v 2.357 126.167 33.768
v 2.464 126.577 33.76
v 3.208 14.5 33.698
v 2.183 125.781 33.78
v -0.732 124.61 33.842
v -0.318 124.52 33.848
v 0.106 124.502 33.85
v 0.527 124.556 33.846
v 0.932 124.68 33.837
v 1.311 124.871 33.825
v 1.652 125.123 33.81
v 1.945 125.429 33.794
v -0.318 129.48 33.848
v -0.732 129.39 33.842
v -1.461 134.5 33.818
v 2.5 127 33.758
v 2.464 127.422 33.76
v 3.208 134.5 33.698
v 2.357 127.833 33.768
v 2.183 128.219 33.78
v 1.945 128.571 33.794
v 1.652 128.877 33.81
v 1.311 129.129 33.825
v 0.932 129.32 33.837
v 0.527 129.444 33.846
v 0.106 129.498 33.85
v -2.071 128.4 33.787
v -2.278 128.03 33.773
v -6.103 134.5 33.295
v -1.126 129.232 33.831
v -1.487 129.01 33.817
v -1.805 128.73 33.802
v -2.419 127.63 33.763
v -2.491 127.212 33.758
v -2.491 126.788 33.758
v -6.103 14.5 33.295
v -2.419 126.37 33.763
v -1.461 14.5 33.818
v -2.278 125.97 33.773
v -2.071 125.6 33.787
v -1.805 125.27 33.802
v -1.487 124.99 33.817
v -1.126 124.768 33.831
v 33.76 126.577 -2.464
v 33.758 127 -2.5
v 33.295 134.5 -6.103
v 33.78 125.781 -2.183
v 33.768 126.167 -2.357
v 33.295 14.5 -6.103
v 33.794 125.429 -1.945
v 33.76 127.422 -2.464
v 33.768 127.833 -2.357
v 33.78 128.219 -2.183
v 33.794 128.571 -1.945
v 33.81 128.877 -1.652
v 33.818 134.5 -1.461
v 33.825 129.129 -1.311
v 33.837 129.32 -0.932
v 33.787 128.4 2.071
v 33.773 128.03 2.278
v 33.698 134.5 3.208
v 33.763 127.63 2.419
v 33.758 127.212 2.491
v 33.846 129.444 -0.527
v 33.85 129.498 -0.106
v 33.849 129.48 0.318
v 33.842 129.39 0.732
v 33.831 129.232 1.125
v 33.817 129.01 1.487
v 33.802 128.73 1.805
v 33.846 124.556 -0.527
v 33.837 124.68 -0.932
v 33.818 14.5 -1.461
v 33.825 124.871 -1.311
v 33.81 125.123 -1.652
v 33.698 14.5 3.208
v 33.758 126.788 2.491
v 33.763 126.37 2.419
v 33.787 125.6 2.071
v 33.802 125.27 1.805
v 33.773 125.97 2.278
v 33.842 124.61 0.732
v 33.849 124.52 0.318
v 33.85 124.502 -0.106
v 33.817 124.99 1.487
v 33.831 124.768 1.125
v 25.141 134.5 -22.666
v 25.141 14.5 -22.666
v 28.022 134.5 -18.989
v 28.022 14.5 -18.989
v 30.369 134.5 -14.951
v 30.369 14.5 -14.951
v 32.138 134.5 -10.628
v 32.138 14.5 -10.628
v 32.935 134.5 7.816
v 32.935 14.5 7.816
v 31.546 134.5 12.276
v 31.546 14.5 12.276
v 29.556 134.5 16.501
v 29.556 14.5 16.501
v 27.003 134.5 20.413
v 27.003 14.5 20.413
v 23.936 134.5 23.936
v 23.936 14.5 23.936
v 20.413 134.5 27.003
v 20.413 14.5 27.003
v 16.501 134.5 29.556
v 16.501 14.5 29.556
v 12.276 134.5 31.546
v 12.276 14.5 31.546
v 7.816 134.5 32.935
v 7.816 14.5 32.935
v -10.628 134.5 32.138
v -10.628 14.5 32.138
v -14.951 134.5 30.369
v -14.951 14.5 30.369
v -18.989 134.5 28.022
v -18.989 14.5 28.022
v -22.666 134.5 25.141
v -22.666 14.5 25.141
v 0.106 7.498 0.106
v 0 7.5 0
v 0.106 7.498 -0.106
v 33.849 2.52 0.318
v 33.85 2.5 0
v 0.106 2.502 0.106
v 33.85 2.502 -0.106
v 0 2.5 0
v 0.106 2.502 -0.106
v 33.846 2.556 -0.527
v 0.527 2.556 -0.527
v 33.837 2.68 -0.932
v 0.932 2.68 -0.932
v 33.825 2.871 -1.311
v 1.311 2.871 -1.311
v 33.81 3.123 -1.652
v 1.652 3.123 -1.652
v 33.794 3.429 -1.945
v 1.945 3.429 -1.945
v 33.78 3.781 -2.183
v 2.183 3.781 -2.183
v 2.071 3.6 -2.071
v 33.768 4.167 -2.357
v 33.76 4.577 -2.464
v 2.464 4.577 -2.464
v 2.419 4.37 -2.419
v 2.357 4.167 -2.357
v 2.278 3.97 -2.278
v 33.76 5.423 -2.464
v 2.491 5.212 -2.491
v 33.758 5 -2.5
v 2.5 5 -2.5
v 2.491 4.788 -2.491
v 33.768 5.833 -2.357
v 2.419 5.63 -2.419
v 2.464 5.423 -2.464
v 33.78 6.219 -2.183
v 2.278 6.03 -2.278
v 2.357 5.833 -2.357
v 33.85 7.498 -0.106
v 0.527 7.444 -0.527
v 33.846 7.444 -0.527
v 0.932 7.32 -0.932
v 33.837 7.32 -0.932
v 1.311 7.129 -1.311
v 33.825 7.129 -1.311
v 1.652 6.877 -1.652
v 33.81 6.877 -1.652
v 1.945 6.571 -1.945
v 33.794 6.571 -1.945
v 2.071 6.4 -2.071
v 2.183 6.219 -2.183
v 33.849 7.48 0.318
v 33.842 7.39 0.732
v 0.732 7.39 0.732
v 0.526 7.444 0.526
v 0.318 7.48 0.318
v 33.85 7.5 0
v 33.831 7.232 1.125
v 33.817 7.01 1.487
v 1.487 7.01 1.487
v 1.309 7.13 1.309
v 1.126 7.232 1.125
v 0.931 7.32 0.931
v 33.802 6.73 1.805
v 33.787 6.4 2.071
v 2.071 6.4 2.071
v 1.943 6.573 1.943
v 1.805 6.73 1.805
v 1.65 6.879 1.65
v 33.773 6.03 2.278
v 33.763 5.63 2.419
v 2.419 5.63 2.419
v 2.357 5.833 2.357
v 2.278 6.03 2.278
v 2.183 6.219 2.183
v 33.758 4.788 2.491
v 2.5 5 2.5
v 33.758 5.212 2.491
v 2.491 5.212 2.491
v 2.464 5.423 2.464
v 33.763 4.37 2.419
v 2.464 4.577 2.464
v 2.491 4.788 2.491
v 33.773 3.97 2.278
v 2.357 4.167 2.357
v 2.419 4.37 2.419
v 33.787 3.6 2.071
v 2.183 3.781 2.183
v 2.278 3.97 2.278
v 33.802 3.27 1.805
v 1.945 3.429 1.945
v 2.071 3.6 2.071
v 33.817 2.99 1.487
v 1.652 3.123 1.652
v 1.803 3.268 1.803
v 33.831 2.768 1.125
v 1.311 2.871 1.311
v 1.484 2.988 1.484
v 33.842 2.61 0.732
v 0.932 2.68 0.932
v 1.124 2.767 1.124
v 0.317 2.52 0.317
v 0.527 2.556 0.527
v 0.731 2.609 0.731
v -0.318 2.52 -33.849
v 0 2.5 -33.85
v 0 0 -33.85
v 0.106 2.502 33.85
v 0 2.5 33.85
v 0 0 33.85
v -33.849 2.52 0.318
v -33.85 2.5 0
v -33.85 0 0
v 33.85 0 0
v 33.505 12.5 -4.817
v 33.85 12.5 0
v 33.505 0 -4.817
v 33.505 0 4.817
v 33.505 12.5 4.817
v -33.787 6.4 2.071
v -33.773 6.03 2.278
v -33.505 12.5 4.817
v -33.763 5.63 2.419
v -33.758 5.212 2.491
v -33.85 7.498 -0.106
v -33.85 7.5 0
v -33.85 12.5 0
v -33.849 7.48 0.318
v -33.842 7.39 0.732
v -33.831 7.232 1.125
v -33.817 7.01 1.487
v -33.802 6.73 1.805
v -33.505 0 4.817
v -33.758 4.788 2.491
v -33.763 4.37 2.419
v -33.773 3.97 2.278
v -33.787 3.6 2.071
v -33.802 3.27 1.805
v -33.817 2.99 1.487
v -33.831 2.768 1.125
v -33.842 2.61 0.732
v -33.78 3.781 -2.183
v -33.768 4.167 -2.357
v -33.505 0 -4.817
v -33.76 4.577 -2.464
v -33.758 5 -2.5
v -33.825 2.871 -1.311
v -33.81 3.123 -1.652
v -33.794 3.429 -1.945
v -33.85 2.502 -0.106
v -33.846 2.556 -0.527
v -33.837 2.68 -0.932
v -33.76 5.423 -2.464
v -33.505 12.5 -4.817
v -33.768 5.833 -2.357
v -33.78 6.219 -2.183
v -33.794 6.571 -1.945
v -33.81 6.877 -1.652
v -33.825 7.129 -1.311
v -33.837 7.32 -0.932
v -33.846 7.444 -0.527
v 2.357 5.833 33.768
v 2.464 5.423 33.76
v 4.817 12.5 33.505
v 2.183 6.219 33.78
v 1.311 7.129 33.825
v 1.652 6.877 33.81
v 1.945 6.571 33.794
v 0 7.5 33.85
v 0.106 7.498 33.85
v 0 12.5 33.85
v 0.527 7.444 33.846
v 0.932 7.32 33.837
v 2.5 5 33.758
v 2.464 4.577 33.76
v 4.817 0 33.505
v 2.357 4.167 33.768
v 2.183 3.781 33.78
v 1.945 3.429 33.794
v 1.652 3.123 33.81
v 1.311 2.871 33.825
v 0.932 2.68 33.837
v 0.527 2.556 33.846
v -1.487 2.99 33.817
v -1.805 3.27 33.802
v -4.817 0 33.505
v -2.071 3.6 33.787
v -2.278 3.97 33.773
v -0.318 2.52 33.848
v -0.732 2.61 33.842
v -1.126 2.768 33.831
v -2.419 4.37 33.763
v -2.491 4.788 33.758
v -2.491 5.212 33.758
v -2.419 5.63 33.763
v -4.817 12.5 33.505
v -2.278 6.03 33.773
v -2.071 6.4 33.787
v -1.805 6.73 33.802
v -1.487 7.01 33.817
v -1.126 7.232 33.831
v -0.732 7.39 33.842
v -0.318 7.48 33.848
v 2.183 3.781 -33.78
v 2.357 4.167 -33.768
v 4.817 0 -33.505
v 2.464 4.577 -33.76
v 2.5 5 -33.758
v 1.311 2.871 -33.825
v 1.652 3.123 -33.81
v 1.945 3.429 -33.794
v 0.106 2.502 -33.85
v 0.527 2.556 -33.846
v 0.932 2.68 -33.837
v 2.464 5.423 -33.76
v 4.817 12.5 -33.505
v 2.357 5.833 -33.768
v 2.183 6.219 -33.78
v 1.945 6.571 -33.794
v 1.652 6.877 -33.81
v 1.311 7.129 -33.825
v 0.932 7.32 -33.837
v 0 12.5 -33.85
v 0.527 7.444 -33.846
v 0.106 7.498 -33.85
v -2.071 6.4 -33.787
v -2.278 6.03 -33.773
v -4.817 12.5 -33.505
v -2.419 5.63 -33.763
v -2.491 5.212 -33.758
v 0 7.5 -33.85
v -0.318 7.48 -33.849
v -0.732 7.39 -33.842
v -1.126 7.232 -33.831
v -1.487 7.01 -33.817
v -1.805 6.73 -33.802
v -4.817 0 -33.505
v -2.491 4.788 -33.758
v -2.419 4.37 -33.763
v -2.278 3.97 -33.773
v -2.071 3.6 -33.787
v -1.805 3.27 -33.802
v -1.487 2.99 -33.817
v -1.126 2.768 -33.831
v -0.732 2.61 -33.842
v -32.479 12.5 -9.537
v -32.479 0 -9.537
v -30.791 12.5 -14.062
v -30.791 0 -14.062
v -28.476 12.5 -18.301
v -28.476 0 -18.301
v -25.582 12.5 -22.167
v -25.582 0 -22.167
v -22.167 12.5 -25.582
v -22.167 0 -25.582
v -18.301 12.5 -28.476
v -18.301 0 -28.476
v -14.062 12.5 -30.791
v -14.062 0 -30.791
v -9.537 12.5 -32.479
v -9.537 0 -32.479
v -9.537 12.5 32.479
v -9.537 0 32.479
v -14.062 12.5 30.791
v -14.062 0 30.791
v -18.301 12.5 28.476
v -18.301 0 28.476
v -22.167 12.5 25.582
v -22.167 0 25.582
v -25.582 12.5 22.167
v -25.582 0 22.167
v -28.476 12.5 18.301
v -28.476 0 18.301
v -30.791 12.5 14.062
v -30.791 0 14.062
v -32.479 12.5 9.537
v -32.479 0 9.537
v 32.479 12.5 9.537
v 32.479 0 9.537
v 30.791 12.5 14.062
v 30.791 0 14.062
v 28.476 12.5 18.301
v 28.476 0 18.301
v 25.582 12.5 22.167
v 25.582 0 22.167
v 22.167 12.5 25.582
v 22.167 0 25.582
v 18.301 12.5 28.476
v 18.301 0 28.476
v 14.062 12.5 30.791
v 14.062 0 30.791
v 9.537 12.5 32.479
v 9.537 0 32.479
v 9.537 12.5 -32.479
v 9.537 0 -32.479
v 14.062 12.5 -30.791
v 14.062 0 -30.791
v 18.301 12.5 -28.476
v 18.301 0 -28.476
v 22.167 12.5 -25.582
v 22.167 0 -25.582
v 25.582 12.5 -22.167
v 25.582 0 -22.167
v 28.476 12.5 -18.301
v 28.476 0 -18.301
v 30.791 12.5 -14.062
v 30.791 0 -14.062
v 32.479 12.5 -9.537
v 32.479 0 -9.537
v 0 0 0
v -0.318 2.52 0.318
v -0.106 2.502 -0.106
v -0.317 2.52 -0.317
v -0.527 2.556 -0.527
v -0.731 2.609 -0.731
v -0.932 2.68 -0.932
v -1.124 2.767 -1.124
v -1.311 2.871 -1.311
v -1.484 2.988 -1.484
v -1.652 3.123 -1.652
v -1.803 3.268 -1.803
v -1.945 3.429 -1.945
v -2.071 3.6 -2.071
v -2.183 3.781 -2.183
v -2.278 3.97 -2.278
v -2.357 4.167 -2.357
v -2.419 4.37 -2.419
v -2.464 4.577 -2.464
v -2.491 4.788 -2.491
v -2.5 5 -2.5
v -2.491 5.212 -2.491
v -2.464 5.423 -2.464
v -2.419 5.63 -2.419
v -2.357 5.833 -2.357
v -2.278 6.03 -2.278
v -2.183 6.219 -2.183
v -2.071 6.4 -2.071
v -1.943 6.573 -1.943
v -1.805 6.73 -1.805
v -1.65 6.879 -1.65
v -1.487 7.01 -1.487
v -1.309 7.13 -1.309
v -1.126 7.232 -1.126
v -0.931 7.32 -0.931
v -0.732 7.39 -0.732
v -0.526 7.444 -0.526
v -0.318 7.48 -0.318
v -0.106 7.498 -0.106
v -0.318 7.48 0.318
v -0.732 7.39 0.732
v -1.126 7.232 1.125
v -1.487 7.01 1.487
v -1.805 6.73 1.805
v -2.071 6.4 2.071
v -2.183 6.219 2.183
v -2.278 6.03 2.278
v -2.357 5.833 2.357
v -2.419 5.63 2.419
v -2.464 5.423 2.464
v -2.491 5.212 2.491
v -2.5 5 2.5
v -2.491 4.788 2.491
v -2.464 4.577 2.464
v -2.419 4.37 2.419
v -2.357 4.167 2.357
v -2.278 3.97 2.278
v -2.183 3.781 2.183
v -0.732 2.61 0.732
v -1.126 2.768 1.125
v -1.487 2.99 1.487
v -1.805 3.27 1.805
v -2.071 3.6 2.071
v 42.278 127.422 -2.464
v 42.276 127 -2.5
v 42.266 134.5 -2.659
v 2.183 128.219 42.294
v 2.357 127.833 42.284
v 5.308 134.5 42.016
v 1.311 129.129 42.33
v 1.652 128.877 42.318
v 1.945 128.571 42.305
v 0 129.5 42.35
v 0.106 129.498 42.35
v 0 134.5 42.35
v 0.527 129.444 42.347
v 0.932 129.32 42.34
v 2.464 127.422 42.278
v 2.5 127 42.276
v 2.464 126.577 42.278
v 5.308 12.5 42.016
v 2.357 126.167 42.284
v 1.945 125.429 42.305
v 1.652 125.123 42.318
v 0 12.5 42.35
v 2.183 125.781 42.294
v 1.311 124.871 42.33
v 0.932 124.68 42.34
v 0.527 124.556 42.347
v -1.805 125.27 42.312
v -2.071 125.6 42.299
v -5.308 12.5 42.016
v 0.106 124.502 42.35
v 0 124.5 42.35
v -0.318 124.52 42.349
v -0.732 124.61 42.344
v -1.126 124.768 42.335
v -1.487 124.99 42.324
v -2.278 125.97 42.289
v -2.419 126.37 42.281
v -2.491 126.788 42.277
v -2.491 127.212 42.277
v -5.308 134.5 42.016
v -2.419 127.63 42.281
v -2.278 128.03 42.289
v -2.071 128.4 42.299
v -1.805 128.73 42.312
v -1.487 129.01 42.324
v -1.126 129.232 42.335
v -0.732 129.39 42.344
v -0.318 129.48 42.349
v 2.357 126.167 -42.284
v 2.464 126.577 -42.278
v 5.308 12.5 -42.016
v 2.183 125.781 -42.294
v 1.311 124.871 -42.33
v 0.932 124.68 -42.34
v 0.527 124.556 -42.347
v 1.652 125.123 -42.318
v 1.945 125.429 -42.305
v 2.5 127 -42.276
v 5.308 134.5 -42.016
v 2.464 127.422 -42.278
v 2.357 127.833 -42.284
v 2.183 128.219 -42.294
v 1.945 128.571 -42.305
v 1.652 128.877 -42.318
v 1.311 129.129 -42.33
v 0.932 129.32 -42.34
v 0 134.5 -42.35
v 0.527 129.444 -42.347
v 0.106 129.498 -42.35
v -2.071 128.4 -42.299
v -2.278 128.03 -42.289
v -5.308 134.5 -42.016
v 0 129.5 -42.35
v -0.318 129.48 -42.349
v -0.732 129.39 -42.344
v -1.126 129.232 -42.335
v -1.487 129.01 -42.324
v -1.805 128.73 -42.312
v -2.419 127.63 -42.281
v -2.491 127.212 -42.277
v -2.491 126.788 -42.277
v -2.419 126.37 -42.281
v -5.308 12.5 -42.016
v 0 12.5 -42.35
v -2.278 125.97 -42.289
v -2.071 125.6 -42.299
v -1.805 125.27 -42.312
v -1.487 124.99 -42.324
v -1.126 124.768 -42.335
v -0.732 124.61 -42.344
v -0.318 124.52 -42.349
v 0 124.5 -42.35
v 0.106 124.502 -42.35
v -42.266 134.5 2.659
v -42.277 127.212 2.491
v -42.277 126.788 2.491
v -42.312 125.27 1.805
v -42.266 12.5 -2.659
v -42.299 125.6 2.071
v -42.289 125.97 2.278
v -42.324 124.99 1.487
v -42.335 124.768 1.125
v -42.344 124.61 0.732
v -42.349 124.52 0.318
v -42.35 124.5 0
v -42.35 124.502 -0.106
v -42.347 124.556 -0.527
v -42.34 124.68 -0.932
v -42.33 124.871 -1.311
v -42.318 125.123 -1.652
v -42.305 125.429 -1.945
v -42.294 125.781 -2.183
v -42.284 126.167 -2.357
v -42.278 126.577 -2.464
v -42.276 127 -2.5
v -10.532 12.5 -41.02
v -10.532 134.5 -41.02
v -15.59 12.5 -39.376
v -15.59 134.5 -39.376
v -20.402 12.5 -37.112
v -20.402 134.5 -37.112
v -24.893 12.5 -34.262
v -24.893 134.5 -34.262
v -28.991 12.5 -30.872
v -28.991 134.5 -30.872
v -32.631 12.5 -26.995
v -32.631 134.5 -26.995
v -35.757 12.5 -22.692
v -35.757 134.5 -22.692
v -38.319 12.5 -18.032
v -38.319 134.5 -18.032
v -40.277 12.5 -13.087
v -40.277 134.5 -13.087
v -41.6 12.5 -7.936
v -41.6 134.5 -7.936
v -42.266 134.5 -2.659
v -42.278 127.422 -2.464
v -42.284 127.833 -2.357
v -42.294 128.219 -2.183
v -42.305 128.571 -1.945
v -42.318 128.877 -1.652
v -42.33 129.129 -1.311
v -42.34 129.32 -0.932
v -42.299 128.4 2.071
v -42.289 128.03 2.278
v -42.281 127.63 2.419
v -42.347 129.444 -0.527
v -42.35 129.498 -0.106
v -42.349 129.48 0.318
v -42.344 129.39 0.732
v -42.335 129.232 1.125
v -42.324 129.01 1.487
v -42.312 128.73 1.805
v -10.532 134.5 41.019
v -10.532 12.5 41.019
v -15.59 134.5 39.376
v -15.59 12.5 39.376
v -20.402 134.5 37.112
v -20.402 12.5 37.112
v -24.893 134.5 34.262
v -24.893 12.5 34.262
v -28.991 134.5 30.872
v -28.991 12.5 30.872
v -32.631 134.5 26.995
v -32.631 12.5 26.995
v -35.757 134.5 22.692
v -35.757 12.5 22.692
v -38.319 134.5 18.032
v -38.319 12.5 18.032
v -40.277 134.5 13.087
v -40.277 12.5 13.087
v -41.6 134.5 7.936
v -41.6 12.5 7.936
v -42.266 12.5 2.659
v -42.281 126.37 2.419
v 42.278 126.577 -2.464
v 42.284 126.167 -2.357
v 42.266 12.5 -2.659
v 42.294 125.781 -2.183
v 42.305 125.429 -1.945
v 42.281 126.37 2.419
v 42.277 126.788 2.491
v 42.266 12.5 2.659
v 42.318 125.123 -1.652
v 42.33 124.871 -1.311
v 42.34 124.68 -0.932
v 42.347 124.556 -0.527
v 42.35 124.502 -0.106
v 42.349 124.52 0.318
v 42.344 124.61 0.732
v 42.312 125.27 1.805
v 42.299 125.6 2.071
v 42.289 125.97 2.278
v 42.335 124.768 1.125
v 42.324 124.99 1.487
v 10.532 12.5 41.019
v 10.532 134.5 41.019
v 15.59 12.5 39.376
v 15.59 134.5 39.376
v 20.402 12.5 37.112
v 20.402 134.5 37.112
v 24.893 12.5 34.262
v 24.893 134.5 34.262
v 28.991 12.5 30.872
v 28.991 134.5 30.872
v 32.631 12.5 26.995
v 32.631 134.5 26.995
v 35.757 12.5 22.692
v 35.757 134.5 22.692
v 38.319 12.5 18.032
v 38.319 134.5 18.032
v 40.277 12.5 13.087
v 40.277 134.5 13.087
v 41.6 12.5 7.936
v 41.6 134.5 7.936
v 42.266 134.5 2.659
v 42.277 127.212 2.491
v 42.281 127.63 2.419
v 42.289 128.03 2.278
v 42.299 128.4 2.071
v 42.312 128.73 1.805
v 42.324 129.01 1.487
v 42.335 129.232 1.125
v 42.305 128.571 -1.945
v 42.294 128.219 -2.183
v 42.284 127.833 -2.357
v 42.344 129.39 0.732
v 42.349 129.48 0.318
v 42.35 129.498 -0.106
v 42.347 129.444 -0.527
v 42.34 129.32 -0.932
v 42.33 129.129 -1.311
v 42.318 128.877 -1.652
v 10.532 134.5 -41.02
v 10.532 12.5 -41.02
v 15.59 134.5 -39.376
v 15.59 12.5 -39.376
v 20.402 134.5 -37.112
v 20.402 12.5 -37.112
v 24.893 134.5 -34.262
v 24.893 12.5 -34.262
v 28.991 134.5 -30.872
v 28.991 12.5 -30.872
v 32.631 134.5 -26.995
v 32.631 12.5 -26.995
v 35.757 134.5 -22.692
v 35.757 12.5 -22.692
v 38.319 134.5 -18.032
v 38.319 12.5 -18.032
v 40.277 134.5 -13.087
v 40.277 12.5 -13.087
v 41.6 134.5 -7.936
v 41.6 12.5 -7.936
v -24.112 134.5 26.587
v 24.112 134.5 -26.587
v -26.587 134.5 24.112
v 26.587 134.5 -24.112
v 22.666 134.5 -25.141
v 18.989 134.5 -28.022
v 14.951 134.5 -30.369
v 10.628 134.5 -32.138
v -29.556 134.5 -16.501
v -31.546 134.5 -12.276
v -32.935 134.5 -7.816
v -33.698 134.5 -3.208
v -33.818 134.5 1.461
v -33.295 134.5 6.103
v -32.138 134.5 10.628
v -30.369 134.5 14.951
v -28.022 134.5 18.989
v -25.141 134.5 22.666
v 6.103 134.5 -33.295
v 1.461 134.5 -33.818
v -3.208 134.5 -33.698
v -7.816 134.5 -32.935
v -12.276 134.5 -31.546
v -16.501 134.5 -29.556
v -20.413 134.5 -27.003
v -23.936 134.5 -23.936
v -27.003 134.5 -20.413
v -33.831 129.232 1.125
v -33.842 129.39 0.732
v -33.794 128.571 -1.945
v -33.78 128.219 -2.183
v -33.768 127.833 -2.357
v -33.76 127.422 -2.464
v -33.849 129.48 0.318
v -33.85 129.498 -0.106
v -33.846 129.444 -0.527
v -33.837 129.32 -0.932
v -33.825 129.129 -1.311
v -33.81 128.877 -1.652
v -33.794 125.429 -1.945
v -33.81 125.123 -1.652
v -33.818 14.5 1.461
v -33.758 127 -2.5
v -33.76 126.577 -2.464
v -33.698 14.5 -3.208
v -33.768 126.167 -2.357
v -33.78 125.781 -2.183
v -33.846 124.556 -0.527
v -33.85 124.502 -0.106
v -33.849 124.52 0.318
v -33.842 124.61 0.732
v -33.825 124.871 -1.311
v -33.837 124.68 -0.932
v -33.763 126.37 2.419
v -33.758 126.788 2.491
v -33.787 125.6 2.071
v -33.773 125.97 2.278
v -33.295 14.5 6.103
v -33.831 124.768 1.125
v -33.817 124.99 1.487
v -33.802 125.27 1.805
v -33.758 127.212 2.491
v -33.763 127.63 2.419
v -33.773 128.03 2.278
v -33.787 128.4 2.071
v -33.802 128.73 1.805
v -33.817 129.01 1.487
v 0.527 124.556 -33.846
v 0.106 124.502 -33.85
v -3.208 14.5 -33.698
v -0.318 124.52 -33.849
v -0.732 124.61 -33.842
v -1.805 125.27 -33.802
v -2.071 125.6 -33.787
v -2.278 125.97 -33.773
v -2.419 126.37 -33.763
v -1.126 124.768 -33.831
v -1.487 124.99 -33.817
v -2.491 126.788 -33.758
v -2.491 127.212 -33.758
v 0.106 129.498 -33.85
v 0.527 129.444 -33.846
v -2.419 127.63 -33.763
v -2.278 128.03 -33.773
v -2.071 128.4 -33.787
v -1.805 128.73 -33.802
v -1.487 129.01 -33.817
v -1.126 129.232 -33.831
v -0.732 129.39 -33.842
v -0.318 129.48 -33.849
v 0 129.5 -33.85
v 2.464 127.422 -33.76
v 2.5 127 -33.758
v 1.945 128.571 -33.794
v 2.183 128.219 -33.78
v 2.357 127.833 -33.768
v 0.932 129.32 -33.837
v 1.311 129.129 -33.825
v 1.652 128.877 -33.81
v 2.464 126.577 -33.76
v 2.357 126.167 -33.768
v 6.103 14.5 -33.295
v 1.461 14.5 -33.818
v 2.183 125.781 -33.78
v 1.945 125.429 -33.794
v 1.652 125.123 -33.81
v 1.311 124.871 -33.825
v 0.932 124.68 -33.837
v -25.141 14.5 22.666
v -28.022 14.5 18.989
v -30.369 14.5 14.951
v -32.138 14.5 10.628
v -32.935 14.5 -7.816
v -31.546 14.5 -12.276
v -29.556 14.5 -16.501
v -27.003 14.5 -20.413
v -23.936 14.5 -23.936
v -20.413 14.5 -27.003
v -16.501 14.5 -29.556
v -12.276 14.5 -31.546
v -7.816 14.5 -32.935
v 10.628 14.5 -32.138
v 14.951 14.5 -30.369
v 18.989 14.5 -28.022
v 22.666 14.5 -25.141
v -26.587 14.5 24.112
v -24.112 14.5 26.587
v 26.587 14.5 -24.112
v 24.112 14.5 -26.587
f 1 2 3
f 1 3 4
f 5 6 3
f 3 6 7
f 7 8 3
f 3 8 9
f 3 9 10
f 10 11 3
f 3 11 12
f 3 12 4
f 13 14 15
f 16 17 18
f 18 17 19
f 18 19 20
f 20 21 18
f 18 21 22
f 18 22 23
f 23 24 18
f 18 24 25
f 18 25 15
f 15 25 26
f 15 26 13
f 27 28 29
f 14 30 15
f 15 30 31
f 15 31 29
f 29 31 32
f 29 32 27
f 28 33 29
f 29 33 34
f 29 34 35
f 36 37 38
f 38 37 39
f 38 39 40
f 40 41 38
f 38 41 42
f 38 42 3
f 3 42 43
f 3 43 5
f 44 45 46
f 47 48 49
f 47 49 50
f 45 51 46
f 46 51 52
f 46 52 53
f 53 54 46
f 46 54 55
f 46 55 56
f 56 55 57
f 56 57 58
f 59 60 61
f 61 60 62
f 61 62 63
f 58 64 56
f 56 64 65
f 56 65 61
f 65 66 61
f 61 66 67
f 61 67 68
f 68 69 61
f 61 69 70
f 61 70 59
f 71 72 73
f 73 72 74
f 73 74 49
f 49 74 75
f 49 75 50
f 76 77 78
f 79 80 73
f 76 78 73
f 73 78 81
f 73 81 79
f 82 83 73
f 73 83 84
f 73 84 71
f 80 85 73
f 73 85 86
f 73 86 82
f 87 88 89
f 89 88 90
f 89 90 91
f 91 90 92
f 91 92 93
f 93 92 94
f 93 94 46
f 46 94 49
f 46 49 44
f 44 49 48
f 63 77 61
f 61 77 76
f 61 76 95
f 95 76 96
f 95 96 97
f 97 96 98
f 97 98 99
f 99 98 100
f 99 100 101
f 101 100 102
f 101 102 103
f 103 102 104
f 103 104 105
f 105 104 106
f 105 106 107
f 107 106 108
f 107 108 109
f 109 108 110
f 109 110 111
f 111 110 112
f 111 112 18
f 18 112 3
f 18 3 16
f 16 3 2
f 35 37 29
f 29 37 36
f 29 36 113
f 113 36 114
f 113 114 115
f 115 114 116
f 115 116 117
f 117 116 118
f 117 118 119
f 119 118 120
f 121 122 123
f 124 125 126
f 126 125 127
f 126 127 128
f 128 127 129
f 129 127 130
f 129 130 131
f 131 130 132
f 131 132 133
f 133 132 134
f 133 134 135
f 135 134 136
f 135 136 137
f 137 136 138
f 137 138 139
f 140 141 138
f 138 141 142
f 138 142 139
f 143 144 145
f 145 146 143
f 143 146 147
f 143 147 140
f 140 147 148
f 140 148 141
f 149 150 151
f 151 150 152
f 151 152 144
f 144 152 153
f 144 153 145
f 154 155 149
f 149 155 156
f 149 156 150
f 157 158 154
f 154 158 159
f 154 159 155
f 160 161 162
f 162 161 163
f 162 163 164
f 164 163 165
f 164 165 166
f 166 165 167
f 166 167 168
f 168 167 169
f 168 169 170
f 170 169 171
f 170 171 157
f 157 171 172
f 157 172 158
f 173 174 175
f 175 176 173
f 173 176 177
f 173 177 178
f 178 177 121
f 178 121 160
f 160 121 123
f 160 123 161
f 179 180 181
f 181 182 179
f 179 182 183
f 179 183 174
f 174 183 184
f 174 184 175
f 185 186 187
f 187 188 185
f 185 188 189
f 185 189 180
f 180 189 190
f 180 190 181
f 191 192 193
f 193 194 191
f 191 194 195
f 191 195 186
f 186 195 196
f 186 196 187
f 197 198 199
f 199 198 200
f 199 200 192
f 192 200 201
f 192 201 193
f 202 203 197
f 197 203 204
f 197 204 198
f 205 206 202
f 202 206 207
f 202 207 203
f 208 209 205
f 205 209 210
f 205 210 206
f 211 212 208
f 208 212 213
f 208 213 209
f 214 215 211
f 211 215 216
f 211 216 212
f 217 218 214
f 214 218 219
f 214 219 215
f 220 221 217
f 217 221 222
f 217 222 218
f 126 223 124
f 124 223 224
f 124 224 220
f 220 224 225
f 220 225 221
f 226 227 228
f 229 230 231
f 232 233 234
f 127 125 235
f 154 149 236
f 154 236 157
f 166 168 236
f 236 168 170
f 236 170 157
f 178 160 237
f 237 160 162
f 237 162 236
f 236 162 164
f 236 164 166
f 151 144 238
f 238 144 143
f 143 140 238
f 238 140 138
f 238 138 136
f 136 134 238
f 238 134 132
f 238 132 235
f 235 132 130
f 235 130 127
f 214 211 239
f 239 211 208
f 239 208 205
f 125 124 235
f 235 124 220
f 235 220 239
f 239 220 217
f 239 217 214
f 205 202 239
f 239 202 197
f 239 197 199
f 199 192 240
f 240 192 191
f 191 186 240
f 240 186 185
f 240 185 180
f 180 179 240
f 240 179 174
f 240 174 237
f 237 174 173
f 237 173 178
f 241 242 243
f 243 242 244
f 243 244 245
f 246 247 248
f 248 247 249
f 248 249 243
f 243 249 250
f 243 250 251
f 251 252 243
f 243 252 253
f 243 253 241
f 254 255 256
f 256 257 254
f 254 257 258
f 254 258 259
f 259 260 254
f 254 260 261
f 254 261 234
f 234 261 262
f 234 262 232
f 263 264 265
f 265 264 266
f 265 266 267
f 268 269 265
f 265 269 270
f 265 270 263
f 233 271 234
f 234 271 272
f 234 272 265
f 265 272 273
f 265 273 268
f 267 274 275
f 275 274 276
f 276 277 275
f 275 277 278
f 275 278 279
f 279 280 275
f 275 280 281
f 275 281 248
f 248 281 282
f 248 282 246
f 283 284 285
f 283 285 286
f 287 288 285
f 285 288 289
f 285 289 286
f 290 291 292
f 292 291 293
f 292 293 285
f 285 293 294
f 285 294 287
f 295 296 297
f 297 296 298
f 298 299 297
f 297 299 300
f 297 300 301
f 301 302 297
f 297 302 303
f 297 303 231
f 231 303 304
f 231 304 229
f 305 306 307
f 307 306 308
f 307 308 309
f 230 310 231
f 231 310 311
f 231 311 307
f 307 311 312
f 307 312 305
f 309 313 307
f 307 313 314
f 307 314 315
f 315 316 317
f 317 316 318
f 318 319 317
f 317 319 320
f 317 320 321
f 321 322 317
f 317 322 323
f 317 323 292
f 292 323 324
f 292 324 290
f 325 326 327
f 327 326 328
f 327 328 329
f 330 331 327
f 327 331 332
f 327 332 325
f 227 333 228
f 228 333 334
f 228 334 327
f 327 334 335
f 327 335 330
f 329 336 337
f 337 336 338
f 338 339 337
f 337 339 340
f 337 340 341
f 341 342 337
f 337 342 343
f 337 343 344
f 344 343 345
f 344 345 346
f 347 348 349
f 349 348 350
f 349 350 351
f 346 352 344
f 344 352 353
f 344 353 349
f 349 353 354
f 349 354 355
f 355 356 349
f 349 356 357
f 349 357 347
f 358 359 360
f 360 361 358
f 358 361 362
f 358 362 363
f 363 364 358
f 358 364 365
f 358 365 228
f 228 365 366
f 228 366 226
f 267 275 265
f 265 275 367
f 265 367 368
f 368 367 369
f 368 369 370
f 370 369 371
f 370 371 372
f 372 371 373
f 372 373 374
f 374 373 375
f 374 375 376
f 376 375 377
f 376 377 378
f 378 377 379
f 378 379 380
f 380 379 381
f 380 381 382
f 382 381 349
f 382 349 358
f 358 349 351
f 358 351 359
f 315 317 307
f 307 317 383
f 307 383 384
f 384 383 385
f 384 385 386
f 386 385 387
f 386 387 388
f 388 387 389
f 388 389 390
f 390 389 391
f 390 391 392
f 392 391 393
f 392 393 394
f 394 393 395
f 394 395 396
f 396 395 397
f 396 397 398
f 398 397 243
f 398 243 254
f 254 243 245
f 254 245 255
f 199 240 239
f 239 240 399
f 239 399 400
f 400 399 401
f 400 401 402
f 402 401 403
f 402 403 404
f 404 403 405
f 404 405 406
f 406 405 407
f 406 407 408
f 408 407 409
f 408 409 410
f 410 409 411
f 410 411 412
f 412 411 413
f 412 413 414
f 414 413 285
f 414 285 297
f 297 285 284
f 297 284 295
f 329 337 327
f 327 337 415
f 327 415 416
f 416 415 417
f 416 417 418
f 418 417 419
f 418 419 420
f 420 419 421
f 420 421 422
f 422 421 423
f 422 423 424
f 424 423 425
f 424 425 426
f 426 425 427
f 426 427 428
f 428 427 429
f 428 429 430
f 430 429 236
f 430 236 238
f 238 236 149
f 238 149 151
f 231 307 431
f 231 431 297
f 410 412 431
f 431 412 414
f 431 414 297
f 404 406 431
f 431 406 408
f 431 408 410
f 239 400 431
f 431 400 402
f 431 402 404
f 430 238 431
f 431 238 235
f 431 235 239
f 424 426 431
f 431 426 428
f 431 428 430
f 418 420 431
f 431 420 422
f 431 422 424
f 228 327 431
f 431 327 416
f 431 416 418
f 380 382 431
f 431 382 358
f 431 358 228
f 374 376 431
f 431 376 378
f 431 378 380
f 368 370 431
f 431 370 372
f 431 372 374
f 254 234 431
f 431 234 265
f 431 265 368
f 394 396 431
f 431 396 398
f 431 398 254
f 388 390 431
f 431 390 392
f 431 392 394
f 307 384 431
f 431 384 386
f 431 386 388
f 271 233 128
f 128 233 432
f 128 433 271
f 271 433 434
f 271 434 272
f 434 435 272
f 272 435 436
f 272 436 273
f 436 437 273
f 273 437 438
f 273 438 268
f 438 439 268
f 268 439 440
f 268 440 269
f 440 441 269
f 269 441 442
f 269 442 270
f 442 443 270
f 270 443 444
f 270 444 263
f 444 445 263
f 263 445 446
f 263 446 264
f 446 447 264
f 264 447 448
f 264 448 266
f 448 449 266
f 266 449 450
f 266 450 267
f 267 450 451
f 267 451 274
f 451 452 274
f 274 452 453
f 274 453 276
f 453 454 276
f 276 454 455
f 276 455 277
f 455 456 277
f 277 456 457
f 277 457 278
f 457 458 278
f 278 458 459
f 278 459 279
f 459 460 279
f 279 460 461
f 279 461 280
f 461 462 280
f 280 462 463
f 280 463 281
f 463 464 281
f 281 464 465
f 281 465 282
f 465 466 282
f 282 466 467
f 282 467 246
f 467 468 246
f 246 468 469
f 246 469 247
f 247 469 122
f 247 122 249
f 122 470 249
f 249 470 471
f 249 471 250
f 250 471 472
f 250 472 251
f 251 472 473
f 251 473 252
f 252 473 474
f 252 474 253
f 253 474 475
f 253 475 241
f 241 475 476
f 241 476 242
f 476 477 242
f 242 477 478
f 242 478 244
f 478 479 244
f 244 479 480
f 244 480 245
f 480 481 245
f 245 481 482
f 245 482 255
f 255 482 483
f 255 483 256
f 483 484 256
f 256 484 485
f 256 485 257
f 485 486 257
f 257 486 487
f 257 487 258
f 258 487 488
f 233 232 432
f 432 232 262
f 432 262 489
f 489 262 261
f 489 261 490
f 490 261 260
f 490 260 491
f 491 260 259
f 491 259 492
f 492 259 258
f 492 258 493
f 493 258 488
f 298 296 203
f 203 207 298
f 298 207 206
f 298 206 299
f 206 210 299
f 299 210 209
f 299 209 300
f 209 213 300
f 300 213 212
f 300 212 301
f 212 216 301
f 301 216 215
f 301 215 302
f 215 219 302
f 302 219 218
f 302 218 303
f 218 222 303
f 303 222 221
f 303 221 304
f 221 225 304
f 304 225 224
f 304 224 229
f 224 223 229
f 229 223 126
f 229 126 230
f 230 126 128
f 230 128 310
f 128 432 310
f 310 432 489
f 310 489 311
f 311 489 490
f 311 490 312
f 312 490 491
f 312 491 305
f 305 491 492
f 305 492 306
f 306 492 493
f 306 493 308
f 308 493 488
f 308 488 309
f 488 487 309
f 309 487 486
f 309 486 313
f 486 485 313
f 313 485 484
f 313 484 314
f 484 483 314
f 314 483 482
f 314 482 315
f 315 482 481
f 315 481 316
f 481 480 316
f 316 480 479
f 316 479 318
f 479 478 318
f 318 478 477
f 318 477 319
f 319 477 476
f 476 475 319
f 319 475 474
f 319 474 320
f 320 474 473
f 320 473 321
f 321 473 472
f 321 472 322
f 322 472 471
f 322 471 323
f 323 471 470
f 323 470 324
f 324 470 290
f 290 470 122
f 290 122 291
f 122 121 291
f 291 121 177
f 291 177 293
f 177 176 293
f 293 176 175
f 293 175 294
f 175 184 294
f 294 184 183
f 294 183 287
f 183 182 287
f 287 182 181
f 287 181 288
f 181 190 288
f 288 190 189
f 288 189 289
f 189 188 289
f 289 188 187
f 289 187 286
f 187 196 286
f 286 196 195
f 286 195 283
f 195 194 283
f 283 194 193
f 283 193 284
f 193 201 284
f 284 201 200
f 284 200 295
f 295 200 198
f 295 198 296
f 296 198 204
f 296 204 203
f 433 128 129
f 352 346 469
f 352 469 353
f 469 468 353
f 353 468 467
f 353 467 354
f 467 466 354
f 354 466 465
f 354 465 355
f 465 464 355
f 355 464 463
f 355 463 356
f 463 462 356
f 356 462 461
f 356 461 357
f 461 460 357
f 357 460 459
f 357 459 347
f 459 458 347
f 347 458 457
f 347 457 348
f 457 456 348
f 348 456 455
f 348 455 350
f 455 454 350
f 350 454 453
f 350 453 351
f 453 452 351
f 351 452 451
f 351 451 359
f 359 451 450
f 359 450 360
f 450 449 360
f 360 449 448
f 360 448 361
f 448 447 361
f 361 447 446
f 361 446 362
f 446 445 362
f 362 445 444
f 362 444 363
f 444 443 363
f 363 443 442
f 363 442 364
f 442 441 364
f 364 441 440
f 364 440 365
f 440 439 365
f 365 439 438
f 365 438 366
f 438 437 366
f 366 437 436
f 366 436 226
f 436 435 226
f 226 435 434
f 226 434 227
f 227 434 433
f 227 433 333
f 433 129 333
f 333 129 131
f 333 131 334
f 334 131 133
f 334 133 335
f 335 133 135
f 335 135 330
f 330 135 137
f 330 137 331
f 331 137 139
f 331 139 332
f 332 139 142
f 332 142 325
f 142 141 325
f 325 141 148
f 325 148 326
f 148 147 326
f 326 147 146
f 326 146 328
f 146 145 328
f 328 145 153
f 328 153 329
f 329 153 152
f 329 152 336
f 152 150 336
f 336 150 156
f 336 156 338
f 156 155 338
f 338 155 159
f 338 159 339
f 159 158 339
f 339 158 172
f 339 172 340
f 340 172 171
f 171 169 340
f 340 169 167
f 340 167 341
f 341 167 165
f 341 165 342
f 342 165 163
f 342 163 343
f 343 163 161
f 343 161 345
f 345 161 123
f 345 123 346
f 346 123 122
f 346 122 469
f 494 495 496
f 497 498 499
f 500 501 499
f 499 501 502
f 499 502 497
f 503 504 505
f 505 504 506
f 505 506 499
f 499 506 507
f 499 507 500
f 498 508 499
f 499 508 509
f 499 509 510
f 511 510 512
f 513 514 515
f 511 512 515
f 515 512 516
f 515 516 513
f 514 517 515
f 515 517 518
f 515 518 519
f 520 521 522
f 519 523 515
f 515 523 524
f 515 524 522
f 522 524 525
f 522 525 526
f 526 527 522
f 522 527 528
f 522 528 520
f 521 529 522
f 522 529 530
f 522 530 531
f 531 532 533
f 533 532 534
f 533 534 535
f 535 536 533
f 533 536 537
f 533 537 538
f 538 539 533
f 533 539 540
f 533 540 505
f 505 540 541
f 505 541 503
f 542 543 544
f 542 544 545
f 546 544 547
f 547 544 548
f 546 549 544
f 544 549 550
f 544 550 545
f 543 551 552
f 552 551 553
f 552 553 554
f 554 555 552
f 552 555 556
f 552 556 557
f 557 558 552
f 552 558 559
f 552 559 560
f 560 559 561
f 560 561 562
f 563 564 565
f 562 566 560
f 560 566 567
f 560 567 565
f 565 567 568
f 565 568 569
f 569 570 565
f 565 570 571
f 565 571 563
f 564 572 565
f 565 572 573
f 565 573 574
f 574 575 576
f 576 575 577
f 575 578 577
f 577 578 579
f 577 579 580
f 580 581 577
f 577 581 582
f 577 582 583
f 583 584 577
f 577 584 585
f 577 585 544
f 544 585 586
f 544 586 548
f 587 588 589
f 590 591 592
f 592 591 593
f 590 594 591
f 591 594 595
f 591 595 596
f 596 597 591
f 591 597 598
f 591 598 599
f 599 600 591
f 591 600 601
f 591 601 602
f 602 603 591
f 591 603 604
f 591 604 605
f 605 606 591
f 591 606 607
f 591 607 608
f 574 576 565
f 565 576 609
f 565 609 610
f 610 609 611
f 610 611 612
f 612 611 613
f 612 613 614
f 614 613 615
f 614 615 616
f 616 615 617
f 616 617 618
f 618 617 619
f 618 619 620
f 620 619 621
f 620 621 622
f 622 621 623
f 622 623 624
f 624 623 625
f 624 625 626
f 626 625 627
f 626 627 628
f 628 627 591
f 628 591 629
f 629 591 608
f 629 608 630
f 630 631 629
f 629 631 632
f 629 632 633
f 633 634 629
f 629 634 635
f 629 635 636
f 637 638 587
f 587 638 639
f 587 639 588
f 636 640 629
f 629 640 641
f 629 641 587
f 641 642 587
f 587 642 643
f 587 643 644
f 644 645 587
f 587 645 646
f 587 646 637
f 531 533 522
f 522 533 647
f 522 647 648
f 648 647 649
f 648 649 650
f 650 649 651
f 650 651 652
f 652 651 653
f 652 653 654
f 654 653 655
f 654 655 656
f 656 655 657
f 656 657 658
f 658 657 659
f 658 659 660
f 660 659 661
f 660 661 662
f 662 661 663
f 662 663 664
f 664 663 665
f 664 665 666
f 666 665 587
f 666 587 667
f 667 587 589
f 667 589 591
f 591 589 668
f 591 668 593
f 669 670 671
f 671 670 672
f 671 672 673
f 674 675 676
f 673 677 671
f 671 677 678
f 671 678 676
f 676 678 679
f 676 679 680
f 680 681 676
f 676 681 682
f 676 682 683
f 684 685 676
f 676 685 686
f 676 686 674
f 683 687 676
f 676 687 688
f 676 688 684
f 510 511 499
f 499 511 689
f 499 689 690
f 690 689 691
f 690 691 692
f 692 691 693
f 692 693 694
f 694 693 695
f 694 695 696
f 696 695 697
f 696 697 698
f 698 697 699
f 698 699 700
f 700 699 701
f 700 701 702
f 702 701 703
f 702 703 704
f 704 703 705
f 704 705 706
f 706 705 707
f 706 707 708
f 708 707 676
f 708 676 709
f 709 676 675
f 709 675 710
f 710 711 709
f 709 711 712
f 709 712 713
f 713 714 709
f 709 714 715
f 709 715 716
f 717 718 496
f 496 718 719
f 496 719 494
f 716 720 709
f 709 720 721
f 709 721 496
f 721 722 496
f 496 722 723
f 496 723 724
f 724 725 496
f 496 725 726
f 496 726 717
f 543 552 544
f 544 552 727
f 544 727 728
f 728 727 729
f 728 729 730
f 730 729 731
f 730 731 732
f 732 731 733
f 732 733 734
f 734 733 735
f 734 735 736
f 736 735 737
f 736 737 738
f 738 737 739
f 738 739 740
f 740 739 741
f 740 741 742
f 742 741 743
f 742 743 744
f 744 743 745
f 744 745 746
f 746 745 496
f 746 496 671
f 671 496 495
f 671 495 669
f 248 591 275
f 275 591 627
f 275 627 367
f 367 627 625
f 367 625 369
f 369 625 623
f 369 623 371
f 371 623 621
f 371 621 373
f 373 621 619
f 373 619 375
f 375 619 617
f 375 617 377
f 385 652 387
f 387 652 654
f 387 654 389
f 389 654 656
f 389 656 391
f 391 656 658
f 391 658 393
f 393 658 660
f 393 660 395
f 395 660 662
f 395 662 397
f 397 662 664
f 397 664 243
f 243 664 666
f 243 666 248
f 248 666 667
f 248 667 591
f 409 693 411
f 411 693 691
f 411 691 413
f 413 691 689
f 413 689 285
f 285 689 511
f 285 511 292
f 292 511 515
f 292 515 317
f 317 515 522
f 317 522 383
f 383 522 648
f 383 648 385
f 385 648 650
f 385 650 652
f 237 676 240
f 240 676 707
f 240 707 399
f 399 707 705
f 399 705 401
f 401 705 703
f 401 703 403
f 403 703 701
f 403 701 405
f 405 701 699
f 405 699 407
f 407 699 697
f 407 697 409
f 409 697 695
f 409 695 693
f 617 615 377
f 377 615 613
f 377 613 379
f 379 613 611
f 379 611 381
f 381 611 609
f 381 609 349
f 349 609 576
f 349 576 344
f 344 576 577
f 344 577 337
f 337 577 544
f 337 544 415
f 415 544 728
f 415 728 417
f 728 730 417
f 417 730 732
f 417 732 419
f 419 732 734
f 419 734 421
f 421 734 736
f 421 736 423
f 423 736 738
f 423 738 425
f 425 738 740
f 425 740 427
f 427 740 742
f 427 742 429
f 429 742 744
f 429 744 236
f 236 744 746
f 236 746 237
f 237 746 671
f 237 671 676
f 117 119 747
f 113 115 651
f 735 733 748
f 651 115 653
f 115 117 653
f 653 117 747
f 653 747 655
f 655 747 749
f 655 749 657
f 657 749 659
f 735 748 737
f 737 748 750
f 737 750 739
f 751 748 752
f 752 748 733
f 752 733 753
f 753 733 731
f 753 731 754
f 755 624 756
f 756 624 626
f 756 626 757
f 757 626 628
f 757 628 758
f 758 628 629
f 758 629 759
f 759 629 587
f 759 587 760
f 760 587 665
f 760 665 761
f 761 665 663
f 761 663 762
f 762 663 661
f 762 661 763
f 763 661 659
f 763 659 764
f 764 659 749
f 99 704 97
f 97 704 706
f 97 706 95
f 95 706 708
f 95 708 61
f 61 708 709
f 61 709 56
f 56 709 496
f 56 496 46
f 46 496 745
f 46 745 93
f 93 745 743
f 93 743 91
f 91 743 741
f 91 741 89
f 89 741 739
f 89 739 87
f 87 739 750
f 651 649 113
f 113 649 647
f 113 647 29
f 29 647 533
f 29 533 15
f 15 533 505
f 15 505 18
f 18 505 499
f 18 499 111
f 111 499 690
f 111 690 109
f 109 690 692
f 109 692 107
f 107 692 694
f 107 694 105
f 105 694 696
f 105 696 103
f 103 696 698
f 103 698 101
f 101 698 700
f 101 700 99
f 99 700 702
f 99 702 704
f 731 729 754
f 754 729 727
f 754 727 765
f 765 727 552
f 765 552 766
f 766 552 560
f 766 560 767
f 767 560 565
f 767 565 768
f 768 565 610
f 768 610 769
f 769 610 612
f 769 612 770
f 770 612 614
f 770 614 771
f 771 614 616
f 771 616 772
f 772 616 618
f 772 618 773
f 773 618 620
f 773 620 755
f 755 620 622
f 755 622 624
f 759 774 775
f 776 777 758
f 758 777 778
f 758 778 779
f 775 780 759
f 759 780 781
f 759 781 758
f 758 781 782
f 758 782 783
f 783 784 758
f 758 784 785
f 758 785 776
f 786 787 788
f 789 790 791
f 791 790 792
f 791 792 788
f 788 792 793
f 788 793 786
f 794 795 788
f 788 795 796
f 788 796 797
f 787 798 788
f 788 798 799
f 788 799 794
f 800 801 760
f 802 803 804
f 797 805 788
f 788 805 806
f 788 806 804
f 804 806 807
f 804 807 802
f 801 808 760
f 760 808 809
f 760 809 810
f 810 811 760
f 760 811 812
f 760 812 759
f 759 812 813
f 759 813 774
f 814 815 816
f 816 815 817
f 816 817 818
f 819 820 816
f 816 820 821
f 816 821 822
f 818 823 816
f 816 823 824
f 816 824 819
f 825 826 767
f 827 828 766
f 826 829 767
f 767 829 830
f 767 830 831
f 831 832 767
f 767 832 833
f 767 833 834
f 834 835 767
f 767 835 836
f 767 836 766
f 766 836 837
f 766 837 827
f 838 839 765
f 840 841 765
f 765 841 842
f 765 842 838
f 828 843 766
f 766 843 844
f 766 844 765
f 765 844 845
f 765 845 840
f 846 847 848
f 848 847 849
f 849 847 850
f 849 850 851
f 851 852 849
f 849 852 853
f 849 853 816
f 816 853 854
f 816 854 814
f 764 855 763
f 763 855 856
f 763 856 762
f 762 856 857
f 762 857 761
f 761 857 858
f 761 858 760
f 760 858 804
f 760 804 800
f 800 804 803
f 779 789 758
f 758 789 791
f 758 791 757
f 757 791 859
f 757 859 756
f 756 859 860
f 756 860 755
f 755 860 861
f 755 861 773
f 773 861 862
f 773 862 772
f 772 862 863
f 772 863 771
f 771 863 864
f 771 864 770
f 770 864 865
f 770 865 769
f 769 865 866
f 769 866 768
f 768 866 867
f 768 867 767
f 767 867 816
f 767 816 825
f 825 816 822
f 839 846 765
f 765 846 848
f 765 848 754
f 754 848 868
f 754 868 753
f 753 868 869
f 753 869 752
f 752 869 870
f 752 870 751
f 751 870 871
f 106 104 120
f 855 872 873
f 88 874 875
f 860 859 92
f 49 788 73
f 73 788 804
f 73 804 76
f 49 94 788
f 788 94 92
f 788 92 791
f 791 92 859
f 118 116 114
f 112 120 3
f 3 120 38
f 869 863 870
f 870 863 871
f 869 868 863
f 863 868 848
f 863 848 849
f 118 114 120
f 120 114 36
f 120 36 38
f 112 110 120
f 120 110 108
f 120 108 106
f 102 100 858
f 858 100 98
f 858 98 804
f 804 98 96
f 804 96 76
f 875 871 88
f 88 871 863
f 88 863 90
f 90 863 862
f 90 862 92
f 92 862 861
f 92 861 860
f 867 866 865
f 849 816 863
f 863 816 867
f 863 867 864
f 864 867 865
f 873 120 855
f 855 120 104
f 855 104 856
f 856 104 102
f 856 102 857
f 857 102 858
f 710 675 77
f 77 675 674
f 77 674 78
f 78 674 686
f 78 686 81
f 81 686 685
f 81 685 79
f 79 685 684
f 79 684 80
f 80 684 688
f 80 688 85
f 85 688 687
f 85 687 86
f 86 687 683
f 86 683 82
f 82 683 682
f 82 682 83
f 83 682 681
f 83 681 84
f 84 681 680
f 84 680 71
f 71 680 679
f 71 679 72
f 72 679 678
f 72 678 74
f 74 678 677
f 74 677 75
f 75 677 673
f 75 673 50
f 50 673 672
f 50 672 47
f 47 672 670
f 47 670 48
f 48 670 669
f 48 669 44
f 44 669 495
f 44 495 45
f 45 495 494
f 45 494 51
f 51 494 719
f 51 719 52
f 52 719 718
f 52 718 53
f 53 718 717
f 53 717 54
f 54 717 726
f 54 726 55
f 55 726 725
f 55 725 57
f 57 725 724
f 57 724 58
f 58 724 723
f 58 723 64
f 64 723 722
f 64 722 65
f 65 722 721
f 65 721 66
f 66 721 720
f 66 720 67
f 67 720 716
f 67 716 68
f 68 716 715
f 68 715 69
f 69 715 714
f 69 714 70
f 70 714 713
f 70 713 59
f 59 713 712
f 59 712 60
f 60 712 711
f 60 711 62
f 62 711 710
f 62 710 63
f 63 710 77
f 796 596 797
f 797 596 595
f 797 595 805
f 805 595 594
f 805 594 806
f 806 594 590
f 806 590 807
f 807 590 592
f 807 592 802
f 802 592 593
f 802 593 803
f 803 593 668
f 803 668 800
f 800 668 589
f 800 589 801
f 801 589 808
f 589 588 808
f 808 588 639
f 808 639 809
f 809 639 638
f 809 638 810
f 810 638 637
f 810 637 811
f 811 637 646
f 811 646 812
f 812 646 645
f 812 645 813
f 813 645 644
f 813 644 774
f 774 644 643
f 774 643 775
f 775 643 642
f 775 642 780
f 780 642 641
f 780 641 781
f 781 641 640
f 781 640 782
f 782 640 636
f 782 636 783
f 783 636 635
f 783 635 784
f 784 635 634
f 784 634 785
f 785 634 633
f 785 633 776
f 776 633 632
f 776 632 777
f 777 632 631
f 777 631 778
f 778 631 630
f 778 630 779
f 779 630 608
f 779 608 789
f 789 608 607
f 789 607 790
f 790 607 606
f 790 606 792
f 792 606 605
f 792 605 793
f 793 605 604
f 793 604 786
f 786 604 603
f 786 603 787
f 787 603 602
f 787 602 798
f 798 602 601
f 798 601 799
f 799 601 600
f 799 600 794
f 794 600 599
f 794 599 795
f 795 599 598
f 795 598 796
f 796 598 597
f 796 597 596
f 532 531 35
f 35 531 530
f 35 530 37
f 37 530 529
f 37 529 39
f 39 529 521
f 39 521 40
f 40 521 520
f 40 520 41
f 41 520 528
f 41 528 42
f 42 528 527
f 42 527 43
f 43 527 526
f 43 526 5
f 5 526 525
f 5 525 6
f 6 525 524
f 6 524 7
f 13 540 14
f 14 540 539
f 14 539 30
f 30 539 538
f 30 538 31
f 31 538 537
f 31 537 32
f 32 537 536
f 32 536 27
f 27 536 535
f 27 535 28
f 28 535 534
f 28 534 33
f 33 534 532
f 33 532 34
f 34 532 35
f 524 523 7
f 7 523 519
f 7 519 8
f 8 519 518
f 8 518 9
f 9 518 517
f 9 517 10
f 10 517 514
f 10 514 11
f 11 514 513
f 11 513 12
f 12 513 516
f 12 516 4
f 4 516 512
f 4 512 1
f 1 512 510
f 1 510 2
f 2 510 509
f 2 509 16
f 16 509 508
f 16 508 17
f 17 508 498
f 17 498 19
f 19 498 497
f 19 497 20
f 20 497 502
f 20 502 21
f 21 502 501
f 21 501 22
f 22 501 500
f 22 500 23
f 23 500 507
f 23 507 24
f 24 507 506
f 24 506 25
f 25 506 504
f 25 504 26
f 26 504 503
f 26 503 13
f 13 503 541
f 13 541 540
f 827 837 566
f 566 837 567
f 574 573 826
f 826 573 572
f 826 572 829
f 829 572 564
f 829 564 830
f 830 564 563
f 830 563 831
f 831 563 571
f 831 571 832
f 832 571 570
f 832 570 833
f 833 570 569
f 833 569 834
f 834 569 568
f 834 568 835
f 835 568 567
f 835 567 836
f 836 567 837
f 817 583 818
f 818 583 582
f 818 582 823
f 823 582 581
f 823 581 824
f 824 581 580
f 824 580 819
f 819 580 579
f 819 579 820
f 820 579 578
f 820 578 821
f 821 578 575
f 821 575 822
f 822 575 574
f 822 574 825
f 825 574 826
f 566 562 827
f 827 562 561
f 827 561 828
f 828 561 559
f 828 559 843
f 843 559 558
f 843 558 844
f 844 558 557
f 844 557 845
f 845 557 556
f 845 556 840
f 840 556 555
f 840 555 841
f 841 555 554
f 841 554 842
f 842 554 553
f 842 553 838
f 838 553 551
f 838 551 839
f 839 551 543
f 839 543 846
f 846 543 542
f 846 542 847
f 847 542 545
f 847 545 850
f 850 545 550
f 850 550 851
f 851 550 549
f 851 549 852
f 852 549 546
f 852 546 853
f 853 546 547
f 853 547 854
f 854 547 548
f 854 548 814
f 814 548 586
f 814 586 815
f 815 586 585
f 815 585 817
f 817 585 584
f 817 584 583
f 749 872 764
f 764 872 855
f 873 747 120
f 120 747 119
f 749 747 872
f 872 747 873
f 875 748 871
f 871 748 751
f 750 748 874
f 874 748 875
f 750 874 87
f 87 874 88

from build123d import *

# Parameters (mm, degrees)
SKETCH1_R               = 33.85
BOSS_EXTRUDE1_DEPTH     = 12.5
SKETCH2_R               = 2.5
CUT_EXTRUDE1_DEPTH      = 34.85
CUT_EXTRUDE1_DEPTH_BACK = 34.85
SKETCH3_R               = 2.5
CUT_EXTRUDE2_DEPTH      = 34.8500001
CUT_EXTRUDE2_DEPTH_BACK = 34.8500001
SKETCH4_R               = 42.35
BOSS_EXTRUDE2_DEPTH     = 2
SKETCH5_R               = 42.35
SKETCH5_R_2             = 33.85
BOSS_EXTRUDE3_DEPTH     = 120
SKETCH6_R               = 2.5
CUT_EXTRUDE3_DEPTH      = 43.35
CUT_EXTRUDE3_DEPTH_BACK = 43.35
SKETCH7_R               = 2.5
CUT_EXTRUDE4_DEPTH      = 43.3500001
CUT_EXTRUDE4_DEPTH_BACK = 43.3500001
CUT_EXTRUDE5_DEPTH      = 120


with BuildPart() as part:
    # Sketch1 → Boss-Extrude1 (new body)
    with BuildSketch(Plane(origin=(0, 0, 0), x_dir=(1, 0, 0), z_dir=(0, 1, 0))):
        Circle(SKETCH1_R)
    extrude(amount=BOSS_EXTRUDE1_DEPTH)

    # Sketch2 → Cut-Extrude1 (cut, two sides)
    with BuildSketch(Plane(origin=(0, 0, 0), x_dir=(0, 0, -1), z_dir=(1, 0, 0))) as cut_extrude1_sk:
        with Locations((0, 5)):
            Circle(SKETCH2_R)
    extrude(amount=CUT_EXTRUDE1_DEPTH, mode=Mode.SUBTRACT)
    extrude(cut_extrude1_sk.sketch, amount=-CUT_EXTRUDE1_DEPTH_BACK, mode=Mode.SUBTRACT)

    # Sketch3 → Cut-Extrude2 (cut, two sides)
    with BuildSketch(Plane.XY) as cut_extrude2_sk:
        with Locations((0, 5)):
            Circle(SKETCH3_R)
    extrude(amount=CUT_EXTRUDE2_DEPTH, mode=Mode.SUBTRACT)
    extrude(cut_extrude2_sk.sketch, amount=-CUT_EXTRUDE2_DEPTH_BACK, mode=Mode.SUBTRACT)

    # Sketch4 → Boss-Extrude2 (add)
    with BuildSketch(Plane(origin=(0, 12.5, 0), x_dir=(1, 0, 0), z_dir=(0, 1, 0))):
        Circle(SKETCH4_R)
    extrude(amount=BOSS_EXTRUDE2_DEPTH)

    # Sketch5 → Boss-Extrude3 (add)
    with BuildSketch(Plane(origin=(0, 14.5, 0), x_dir=(1, 0, 0), z_dir=(0, 1, 0))):
        Circle(SKETCH5_R)
        Circle(SKETCH5_R_2, mode=Mode.SUBTRACT)
    extrude(amount=BOSS_EXTRUDE3_DEPTH)

    # Sketch6 → Cut-Extrude3 (cut, two sides)
    with BuildSketch(Plane(origin=(0, 0, 0), x_dir=(0, 0, -1), z_dir=(1, 0, 0))) as cut_extrude3_sk:
        with Locations((0, 127)):
            Circle(SKETCH6_R)
    extrude(amount=CUT_EXTRUDE3_DEPTH, mode=Mode.SUBTRACT)
    extrude(cut_extrude3_sk.sketch, amount=-CUT_EXTRUDE3_DEPTH_BACK, mode=Mode.SUBTRACT)

    # Sketch7 → Cut-Extrude4 (cut, two sides)
    with BuildSketch(Plane.XY) as cut_extrude4_sk:
        with Locations((0, 127)):
            Circle(SKETCH7_R)
    extrude(amount=CUT_EXTRUDE4_DEPTH, mode=Mode.SUBTRACT)
    extrude(cut_extrude4_sk.sketch, amount=-CUT_EXTRUDE4_DEPTH_BACK, mode=Mode.SUBTRACT)

    # Sketch9 → Cut-Extrude5 (cut)
    with BuildSketch(Plane(origin=(0, 134.5, 0), x_dir=(1, 0, 0), z_dir=(0, 1, 0))):
        Polygon((24.112341238, 26.587214973), (-26.587214973, -24.112341238), (-24.112341238, -26.587214973), (26.587214973, 24.112341238), align=None)
    extrude(amount=-CUT_EXTRUDE5_DEPTH, mode=Mode.SUBTRACT)


solid = part.part
